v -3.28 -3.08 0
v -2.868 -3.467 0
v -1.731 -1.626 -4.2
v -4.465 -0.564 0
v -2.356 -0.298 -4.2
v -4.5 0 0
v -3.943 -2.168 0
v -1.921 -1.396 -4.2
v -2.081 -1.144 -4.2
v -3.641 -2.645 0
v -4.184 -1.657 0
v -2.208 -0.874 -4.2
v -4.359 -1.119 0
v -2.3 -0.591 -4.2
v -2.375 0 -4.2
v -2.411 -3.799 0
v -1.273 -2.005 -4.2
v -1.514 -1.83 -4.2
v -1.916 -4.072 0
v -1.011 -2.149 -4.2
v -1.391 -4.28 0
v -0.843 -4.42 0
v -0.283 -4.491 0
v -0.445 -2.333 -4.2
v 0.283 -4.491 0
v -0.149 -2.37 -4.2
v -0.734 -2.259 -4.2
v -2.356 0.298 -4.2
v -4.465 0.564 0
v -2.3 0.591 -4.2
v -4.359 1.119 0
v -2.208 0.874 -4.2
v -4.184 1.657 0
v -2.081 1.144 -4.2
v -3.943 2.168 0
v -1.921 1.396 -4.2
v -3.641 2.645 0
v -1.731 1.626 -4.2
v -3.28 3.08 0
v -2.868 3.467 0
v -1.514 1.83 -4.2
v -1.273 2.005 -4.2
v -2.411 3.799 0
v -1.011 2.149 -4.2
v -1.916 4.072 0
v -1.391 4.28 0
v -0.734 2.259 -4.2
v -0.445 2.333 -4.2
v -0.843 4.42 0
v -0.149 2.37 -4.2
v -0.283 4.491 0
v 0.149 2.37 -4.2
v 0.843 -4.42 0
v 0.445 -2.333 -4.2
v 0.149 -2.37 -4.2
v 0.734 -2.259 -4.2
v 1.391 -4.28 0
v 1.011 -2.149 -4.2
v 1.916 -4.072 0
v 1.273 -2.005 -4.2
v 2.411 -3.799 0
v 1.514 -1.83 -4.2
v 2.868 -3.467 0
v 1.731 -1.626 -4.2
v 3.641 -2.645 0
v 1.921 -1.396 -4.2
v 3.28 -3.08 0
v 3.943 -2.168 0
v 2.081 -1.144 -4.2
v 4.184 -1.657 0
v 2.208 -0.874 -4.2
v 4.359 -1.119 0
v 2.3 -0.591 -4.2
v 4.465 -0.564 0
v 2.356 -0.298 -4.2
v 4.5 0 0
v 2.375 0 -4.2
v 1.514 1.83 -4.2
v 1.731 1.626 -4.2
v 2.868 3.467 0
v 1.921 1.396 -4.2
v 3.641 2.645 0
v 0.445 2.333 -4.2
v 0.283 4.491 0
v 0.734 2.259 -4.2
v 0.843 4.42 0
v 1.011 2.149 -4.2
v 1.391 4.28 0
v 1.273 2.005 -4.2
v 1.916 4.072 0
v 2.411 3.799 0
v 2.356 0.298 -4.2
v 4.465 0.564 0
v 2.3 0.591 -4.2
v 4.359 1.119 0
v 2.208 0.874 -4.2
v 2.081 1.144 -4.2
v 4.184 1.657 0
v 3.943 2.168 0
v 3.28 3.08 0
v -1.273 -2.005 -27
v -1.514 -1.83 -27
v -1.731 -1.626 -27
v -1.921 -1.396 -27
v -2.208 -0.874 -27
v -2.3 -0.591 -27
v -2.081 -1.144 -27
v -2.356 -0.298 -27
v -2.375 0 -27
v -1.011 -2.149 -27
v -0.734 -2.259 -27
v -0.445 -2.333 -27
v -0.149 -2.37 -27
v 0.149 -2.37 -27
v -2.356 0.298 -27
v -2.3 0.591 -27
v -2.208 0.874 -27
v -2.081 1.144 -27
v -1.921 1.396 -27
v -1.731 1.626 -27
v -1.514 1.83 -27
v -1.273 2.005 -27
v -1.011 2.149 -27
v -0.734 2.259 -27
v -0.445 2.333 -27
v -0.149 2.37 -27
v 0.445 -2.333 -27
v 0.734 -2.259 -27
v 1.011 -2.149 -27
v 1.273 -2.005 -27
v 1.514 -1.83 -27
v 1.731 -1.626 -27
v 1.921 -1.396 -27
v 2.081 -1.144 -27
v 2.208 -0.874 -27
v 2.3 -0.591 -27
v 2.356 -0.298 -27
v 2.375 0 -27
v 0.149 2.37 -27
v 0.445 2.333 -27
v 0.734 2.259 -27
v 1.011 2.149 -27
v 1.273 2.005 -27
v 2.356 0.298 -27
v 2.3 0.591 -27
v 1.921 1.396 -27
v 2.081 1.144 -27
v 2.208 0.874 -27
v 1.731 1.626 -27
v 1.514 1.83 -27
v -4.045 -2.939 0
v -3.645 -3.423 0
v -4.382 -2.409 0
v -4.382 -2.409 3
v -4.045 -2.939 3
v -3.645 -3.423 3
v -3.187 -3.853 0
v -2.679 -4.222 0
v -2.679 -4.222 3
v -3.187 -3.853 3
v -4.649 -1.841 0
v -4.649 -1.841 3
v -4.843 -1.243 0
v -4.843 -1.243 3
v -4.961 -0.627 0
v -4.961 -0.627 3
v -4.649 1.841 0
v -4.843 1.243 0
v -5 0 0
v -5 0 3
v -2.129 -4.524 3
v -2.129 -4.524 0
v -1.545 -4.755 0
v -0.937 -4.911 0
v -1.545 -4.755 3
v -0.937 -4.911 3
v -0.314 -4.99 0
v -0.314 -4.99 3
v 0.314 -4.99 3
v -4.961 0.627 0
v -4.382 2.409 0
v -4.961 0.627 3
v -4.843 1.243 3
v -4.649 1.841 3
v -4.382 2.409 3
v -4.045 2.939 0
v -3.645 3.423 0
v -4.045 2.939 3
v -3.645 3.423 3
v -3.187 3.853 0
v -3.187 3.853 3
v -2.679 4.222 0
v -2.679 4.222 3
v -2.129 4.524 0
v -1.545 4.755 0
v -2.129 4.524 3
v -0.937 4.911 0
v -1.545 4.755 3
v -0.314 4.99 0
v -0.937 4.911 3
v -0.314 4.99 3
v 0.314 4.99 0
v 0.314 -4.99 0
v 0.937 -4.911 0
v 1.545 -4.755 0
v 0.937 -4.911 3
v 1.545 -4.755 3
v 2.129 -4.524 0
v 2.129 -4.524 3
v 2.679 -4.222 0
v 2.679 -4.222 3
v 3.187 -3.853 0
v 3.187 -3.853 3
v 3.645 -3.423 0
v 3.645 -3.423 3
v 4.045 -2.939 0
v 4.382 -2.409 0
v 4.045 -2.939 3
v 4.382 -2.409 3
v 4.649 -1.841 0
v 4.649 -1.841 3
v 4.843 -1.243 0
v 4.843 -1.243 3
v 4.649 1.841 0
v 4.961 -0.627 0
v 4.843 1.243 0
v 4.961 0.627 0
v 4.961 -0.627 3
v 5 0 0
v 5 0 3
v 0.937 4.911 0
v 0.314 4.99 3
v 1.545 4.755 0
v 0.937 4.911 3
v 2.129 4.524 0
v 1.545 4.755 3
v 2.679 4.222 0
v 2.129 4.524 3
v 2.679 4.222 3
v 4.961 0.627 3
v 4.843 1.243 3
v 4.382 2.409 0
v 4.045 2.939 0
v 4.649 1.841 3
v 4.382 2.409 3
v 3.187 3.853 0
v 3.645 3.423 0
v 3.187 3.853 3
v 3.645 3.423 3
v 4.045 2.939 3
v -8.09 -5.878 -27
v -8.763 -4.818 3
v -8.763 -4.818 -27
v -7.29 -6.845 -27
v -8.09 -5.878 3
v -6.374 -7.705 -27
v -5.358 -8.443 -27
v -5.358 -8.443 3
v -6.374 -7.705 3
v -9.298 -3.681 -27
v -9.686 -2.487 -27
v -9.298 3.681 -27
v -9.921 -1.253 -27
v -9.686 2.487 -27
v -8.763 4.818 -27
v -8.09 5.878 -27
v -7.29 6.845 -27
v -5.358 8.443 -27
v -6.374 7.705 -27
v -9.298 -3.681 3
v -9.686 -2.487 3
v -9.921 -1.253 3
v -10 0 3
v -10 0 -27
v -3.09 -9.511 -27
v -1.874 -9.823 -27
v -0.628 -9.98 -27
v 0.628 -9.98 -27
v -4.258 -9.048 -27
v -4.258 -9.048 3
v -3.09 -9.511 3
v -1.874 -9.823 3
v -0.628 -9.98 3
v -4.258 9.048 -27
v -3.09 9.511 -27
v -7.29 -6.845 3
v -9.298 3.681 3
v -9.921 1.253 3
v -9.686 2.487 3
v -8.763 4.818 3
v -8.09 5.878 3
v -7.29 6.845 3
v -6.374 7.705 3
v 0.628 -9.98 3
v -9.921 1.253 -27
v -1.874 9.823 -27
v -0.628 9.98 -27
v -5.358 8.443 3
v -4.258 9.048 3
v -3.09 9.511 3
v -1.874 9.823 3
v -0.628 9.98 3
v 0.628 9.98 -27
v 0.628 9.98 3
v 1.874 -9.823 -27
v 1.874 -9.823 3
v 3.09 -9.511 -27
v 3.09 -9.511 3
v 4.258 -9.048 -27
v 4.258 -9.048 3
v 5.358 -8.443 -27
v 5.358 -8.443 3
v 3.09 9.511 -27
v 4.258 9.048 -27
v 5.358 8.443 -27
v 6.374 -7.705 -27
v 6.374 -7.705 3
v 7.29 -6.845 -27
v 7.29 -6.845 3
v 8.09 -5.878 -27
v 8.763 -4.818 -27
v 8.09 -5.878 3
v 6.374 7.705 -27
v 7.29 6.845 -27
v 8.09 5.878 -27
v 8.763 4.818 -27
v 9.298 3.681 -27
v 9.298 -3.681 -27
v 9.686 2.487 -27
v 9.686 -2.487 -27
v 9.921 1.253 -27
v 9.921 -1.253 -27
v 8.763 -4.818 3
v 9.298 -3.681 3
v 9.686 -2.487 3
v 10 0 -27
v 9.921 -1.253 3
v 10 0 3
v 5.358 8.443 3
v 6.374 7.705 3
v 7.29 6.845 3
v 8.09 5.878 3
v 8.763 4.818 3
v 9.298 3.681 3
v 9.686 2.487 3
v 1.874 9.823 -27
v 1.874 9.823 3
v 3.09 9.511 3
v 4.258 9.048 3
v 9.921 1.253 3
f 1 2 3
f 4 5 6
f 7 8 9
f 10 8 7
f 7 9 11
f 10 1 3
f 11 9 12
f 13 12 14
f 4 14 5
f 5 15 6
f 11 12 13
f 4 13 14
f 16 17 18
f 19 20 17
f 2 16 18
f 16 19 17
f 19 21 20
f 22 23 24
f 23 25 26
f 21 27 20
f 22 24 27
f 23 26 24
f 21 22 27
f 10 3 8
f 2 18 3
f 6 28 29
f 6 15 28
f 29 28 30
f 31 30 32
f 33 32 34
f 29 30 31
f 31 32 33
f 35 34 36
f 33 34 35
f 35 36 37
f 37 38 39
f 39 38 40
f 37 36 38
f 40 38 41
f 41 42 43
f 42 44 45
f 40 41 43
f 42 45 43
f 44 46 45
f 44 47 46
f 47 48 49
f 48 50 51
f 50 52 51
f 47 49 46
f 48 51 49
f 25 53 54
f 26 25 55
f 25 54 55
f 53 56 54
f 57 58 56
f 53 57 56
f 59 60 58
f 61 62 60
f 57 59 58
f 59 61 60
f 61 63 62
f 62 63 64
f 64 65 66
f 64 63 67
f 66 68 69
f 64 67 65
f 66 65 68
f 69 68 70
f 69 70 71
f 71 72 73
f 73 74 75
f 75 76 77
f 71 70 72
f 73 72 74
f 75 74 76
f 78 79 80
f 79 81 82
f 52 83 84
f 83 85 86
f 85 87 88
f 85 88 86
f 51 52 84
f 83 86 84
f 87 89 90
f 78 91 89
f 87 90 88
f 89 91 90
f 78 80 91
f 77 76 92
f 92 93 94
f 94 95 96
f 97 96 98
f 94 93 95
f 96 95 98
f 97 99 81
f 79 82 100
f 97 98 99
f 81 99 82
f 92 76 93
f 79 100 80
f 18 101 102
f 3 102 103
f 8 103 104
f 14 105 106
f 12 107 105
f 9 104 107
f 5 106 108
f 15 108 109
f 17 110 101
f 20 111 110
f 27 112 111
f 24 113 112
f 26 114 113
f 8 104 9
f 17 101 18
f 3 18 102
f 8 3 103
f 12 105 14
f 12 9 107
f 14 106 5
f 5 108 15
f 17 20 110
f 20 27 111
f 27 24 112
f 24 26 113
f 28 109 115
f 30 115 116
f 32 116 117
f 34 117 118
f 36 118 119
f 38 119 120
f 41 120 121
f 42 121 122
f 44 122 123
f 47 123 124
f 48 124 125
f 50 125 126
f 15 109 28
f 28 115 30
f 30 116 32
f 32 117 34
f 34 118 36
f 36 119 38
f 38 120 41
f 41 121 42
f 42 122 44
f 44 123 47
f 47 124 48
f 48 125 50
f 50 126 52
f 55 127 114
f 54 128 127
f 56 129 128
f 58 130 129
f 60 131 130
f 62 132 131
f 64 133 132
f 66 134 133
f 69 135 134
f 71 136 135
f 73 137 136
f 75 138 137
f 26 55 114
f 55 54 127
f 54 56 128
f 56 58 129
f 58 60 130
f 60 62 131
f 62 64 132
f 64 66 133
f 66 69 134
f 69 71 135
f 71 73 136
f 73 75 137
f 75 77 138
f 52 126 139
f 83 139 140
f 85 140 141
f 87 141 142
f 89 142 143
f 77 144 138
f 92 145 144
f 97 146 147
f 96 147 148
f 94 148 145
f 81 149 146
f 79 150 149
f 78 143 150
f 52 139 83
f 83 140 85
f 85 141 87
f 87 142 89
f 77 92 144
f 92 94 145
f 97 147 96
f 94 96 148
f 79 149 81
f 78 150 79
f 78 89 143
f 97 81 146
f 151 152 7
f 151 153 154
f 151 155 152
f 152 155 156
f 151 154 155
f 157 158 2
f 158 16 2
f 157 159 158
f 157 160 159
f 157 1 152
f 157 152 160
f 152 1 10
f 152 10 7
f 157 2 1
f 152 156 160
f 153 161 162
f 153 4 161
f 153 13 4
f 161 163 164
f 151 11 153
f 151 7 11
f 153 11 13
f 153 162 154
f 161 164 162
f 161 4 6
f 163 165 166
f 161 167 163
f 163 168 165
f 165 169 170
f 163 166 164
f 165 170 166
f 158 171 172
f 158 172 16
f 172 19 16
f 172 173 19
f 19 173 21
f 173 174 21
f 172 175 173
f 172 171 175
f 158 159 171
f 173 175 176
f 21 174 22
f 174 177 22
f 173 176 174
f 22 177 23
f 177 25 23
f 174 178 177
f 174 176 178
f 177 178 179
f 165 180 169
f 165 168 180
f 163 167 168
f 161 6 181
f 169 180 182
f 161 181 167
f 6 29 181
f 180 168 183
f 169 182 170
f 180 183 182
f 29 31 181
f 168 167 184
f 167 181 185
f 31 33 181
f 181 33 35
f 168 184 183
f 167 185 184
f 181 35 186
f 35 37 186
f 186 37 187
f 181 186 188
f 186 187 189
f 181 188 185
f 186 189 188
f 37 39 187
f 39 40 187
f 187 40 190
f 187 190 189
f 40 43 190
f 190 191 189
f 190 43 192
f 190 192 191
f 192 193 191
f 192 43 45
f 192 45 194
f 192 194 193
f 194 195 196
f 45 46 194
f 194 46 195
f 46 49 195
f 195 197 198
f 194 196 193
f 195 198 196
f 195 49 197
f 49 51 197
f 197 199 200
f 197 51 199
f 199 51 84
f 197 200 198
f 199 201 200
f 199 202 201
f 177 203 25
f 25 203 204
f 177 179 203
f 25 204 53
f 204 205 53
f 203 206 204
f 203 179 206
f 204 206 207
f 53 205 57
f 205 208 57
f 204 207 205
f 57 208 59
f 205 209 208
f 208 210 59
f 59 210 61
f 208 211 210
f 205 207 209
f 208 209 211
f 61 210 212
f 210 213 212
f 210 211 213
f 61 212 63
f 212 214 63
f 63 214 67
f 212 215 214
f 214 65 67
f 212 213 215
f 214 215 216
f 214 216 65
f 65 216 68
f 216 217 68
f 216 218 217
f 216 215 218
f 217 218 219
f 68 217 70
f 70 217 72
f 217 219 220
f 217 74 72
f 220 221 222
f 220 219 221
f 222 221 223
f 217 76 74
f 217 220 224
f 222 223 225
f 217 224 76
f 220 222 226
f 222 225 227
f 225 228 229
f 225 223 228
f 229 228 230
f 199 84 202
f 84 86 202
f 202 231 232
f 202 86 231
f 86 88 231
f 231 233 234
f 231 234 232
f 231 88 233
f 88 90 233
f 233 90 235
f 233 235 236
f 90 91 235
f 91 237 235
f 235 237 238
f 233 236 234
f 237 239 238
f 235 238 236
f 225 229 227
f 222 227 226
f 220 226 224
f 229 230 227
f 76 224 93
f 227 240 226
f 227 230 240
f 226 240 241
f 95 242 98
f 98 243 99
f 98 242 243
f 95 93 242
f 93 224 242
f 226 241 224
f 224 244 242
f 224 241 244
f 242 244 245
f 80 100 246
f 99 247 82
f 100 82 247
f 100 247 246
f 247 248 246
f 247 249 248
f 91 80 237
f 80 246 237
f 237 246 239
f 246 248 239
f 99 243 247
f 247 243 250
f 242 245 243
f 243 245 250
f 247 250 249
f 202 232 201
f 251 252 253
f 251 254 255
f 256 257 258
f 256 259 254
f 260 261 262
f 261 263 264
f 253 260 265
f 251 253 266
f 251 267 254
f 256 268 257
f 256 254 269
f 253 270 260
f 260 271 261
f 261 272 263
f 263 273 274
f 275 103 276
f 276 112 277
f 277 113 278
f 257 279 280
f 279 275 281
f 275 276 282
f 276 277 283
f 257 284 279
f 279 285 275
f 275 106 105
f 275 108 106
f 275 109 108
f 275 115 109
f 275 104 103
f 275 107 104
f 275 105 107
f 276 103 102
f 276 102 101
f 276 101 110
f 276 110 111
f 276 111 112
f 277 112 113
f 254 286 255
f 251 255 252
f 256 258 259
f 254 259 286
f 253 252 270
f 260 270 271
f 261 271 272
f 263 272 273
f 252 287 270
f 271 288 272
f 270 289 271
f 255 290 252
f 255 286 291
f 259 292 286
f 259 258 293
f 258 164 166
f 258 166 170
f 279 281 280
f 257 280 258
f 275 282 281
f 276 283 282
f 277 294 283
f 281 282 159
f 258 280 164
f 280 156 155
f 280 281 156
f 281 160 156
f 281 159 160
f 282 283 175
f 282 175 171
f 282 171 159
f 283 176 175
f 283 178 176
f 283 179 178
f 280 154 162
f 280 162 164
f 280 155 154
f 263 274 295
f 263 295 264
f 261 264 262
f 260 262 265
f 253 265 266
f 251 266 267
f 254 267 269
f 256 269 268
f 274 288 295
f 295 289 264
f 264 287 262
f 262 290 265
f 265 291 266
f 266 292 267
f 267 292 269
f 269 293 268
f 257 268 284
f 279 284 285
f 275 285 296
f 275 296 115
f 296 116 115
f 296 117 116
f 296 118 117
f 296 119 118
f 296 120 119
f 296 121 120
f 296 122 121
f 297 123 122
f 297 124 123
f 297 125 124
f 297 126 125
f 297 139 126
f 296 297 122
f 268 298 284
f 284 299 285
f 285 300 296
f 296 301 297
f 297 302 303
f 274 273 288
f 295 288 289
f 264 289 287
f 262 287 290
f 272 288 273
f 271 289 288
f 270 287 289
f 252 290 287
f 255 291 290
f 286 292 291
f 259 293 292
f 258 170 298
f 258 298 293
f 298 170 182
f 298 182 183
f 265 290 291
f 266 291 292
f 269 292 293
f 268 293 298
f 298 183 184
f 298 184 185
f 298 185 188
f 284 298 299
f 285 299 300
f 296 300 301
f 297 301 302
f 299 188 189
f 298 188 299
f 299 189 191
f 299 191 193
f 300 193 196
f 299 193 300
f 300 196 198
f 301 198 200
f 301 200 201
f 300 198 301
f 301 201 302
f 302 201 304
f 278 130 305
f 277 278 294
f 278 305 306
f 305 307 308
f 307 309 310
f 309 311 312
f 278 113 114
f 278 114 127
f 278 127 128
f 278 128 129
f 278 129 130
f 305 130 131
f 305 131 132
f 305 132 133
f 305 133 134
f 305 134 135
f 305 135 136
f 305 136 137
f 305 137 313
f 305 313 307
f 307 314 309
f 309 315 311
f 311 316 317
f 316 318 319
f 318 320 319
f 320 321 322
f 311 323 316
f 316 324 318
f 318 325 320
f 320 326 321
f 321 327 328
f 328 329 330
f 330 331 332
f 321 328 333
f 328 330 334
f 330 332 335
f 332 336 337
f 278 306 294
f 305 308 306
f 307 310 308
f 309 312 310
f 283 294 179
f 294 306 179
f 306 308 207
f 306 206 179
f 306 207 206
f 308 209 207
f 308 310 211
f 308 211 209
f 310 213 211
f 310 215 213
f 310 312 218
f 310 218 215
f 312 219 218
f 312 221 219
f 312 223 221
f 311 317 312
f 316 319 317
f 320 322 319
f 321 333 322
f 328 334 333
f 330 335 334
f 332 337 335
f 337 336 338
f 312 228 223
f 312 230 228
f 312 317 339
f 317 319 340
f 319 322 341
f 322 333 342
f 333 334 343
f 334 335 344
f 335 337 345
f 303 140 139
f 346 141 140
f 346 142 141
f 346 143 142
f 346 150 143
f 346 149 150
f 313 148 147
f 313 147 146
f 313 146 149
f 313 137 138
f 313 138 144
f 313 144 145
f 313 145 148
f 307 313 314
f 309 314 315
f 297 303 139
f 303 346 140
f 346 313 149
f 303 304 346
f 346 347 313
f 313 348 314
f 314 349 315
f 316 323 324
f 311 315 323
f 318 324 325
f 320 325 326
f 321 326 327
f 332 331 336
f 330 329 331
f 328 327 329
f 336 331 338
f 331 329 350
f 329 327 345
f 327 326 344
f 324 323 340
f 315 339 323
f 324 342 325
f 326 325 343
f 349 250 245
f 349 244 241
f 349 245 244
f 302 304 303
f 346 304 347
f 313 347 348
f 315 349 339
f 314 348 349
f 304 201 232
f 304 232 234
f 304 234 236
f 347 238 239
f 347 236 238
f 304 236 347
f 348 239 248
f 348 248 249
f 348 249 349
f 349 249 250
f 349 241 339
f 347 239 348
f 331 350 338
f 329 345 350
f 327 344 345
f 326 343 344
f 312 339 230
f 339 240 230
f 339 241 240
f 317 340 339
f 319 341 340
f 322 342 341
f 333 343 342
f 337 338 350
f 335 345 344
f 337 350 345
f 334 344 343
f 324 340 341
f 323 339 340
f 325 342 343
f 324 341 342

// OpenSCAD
$fn = 50;

difference() {
	union() {
		translate(v = [0, 0, -27.0]) {
			cylinder(h = 30, r = 10.0);
		}
	}
	union() {
		translate(v = [0, 0, 0]) {
			rotate(a = [0, 0, 0]) {
				difference() {
					union() {
						translate(v = [0, 0, -30.0]) {
							cylinder(h = 30, r = 2.25);
						}
						translate(v = [0, 0, -4.2]) {
							cylinder(h = 4.2, r1 = 2.375, r2 = 4.5);
						}
						translate(v = [0, 0, -30.0]) {
							cylinder(h = 30, r = 2.375);
						}
						translate(v = [0, 0, -30.0]) {
							cylinder(h = 30, r = 2.25);
						}
					}
					union();
				}
			}
		}
		#cylinder(h = 3, r = 5.0);
	}
}
